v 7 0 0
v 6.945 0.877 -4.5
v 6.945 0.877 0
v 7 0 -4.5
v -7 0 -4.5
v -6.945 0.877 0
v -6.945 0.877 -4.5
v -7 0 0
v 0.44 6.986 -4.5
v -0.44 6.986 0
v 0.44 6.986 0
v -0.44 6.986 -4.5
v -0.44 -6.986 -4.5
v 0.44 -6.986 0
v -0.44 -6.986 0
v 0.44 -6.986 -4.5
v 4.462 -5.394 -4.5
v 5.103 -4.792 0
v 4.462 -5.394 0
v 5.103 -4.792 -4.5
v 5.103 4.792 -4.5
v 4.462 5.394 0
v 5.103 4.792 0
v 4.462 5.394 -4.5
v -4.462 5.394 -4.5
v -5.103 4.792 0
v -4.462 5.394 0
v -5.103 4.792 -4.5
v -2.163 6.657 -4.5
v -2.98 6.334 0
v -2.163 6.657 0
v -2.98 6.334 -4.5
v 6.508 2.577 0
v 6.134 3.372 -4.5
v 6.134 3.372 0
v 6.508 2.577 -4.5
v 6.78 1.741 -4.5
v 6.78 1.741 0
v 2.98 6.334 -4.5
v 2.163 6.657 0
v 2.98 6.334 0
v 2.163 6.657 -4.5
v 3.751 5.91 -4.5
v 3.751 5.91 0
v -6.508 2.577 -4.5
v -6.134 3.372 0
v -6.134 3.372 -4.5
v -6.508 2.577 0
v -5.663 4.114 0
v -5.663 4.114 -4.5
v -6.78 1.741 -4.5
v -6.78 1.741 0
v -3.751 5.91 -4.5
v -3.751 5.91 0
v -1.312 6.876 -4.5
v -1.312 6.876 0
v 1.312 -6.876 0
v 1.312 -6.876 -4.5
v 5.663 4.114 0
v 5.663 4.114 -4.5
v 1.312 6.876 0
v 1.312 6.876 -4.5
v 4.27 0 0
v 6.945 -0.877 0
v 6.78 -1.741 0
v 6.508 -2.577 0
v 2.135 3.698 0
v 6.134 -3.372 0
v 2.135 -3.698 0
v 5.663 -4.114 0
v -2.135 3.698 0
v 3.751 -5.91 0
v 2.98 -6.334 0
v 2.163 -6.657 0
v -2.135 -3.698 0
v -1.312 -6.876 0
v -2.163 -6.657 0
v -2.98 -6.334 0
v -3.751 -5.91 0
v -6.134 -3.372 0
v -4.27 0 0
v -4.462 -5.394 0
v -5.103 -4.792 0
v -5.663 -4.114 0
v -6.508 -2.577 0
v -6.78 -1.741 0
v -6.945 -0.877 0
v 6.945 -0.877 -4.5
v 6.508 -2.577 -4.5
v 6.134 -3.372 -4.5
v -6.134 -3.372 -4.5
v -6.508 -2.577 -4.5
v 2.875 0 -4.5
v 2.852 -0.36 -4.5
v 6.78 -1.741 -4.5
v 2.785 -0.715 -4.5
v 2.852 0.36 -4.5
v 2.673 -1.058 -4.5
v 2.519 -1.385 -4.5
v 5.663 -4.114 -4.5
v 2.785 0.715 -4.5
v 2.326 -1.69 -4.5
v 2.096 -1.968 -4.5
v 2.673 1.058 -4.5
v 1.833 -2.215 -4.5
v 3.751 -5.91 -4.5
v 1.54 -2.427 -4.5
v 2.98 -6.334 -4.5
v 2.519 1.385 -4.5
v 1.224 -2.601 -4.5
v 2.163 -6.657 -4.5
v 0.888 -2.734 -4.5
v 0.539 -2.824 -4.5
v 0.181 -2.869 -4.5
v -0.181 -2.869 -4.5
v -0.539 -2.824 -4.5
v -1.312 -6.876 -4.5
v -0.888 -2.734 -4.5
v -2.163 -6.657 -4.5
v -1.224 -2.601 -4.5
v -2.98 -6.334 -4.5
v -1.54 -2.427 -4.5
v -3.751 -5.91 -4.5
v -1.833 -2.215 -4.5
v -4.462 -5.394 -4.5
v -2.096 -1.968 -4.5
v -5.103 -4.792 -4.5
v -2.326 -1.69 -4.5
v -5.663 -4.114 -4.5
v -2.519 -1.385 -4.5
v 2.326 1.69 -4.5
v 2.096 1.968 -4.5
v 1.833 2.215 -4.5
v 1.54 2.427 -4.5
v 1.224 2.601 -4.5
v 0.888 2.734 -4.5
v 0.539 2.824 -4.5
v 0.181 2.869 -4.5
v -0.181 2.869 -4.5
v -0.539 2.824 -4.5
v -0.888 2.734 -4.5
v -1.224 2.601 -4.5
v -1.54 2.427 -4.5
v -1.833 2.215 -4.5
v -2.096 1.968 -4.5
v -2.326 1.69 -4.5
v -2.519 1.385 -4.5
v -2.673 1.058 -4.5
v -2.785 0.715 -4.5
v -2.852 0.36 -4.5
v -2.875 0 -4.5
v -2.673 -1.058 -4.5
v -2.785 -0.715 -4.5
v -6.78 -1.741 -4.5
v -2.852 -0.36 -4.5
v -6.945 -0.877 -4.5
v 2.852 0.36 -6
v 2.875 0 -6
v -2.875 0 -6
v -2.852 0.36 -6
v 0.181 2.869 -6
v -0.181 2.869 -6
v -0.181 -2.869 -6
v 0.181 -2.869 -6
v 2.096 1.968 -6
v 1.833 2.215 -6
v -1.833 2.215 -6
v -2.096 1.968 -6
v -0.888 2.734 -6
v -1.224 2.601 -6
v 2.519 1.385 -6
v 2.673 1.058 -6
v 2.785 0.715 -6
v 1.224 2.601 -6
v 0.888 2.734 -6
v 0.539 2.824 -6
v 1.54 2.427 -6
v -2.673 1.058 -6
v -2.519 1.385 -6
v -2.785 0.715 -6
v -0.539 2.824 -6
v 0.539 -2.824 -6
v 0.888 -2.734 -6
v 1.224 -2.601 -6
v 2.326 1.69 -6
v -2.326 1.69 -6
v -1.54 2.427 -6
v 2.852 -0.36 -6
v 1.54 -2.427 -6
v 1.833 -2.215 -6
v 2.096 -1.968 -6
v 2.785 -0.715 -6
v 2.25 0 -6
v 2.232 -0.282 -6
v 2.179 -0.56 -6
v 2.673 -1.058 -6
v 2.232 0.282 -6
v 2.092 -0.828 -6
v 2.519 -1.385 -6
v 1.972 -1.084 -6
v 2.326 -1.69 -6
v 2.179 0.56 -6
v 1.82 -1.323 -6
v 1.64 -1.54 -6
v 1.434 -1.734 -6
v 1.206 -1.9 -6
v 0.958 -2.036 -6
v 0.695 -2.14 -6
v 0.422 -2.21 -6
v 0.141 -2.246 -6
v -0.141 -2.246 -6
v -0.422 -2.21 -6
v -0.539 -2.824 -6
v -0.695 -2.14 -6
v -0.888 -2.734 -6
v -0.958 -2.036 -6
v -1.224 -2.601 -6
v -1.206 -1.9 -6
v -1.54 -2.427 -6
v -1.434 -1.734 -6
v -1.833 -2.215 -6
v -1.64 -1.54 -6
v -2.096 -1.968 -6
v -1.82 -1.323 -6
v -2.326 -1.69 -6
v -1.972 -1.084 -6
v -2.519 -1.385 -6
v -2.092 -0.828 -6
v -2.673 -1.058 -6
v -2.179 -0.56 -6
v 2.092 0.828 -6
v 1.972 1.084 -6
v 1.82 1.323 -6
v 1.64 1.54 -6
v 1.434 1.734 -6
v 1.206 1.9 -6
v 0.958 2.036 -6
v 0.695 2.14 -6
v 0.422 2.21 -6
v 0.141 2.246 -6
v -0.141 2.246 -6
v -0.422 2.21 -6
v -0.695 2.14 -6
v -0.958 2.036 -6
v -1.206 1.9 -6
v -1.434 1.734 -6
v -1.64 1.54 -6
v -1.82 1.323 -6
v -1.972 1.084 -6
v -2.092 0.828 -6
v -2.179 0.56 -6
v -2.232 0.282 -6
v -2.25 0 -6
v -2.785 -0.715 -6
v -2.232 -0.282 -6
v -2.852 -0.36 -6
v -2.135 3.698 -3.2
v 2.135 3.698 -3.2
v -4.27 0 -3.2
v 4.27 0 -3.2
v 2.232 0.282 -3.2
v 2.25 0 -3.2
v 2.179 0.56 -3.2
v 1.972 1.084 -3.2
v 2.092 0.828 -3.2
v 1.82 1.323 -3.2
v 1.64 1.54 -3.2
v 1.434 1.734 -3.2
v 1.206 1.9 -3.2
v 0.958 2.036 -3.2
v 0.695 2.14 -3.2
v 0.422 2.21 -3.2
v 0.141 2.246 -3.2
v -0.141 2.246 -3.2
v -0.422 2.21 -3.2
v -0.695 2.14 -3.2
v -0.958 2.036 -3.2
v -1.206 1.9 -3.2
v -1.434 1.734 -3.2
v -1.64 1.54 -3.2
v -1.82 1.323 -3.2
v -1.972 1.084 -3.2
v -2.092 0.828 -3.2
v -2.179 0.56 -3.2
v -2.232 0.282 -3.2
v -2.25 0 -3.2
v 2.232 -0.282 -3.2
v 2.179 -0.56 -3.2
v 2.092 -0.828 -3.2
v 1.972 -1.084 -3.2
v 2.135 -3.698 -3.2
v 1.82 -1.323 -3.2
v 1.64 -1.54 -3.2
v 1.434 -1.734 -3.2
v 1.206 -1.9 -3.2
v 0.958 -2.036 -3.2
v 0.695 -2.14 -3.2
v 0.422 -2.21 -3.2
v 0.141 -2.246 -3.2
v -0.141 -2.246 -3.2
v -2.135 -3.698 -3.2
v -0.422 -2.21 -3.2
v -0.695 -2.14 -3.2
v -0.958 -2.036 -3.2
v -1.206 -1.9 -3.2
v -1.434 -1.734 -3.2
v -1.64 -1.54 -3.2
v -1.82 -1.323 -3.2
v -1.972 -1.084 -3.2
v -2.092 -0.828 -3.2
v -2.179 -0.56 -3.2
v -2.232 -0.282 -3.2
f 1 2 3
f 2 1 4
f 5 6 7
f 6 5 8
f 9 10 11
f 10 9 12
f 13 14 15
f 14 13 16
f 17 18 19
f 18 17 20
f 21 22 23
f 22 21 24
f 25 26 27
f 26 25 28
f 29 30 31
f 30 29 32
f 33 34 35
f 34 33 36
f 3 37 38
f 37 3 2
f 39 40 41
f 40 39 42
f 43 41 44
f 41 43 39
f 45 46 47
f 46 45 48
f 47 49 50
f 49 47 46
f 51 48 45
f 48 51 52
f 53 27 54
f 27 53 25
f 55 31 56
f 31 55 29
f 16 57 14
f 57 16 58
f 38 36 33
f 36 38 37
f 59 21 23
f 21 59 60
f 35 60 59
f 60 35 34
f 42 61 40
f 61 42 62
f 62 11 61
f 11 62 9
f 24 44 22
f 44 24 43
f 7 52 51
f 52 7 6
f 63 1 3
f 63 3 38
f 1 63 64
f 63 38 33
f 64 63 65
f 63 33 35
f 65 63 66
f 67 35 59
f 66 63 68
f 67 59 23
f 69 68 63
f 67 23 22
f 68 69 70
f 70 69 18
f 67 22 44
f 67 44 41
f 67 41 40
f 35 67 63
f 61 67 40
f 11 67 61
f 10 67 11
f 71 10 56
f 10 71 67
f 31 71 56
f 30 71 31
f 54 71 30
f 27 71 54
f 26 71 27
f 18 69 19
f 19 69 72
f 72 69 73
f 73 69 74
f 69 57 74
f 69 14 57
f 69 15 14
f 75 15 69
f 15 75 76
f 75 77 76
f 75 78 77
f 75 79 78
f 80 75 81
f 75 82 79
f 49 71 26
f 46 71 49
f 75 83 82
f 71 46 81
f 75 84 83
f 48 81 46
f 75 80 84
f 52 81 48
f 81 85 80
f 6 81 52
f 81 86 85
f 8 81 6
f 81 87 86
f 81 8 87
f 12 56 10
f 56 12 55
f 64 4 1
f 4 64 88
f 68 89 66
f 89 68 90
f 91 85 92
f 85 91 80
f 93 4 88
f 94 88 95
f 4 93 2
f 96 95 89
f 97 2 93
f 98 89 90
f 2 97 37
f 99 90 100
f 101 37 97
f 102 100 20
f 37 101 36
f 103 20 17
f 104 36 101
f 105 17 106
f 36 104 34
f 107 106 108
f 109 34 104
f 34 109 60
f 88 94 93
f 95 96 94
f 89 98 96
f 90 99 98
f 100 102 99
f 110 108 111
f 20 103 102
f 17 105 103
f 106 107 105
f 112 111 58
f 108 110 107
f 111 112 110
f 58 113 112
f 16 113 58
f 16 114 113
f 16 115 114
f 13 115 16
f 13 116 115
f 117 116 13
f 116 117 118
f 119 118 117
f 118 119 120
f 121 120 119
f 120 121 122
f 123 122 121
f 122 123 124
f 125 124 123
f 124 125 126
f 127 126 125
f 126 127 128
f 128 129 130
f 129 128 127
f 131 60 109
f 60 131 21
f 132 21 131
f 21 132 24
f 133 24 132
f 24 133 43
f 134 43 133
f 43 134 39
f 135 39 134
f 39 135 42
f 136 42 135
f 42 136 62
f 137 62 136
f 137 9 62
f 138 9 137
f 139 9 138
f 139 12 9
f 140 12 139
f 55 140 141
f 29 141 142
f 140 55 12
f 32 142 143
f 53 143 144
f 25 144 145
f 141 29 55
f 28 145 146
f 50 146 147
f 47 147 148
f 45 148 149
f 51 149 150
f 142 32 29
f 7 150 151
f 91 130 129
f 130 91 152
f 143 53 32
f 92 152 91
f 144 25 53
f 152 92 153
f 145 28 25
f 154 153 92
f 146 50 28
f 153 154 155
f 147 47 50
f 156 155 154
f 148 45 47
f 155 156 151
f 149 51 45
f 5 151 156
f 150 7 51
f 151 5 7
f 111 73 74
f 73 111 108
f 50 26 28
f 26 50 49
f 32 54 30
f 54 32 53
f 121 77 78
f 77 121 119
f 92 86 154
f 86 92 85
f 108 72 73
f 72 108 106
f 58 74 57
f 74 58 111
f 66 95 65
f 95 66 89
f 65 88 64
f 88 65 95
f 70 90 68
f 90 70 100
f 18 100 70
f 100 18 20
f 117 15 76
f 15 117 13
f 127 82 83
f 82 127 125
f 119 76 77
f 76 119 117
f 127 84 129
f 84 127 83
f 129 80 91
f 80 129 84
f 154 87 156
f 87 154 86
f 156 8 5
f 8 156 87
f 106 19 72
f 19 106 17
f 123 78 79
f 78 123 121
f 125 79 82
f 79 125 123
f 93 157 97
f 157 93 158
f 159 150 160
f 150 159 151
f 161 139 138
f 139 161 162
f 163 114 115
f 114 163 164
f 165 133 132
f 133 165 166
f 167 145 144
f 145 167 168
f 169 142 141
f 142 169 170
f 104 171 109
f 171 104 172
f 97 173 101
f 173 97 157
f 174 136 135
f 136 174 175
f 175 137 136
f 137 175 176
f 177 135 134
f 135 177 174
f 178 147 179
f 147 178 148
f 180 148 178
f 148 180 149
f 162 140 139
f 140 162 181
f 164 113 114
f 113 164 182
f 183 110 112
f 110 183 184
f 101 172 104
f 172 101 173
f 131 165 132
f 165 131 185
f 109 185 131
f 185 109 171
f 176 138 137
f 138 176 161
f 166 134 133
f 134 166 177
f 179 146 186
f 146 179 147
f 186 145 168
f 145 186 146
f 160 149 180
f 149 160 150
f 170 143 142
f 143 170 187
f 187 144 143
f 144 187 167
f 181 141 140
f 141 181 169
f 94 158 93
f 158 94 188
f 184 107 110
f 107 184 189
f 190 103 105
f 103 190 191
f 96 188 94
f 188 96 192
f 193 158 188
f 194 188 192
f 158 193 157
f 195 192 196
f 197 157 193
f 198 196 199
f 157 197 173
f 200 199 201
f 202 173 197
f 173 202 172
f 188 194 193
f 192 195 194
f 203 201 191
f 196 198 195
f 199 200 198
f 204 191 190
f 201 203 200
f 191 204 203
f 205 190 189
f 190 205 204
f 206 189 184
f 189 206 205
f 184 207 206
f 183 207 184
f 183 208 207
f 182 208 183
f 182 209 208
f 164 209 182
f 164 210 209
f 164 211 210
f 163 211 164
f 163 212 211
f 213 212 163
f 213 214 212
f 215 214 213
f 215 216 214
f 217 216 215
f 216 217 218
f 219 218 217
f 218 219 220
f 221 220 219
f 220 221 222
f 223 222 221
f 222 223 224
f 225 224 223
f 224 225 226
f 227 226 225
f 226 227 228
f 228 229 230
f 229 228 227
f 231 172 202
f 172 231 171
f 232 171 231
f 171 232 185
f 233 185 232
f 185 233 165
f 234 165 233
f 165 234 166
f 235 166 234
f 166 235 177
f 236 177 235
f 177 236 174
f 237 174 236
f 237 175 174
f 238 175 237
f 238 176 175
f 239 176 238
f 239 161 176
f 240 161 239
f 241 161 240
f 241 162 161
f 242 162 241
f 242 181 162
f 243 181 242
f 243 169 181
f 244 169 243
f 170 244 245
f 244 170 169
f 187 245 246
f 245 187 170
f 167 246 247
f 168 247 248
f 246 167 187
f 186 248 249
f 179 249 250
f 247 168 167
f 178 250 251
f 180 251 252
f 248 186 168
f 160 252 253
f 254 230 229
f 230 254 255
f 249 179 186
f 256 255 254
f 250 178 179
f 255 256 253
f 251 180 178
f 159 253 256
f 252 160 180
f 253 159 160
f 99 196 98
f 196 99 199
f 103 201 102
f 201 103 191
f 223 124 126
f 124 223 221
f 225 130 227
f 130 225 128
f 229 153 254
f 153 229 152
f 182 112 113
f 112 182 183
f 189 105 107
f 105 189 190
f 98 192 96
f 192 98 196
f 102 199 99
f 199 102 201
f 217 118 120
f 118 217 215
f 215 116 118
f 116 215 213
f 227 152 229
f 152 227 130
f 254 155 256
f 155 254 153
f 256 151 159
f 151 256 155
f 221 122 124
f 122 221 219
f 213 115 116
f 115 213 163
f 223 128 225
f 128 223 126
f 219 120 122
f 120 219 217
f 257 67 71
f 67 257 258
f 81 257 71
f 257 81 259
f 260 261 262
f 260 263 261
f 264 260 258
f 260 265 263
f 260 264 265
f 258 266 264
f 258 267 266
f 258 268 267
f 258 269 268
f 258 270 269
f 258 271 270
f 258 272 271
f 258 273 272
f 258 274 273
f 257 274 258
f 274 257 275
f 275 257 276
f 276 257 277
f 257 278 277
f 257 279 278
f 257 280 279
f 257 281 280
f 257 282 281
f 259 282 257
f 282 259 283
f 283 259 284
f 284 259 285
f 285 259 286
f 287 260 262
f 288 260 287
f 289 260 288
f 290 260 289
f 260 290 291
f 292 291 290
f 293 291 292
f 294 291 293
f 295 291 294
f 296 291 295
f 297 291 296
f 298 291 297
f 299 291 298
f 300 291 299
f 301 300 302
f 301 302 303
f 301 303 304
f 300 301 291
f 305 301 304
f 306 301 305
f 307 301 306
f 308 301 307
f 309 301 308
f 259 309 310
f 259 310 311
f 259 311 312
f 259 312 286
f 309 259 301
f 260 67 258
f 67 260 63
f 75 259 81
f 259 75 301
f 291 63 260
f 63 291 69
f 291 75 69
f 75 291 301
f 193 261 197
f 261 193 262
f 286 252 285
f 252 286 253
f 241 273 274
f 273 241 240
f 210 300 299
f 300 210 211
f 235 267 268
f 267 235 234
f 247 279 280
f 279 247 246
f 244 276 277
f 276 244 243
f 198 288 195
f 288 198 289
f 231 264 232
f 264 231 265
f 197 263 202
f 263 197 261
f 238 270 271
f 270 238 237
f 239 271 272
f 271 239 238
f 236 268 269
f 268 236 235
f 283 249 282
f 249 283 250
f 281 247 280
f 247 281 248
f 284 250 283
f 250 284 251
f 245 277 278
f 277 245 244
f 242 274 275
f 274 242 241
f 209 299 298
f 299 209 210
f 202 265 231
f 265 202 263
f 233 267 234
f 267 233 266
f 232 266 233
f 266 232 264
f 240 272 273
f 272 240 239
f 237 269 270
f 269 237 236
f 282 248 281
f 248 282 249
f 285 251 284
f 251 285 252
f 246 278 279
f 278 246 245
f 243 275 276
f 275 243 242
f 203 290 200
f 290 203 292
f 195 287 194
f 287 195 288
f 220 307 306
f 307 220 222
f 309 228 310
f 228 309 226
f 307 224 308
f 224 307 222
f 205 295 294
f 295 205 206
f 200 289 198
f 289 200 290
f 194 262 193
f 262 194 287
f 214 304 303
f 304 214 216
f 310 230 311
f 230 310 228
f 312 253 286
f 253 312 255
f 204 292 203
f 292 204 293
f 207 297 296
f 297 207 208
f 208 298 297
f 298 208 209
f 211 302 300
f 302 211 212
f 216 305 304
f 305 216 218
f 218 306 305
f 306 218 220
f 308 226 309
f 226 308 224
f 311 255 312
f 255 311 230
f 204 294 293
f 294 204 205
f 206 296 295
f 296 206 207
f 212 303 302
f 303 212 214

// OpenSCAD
$fn = 50;


difference() {
	union() {
		translate(v = [0, 0, -4.5000000000]) {
			cylinder(h = 4.5000000000, r = 7.0000000000);
		}
		translate(v = [0, 0, -6.0000000000]) {
			cylinder(h = 6, r = 2.8750000000);
		}
	}
	union() {
		translate(v = [0, 0, 0]) {
			rotate(a = [0, 0, 0]) {
				difference() {
					union() {
						translate(v = [0, 0, -3.2000000000]) {
							linear_extrude(height = 3.2000000000) {
								polygon(points = [[4.2698000000, 0.0000000000], [2.1349000000, 3.6977552691], [-2.1349000000, 3.6977552691], [-4.2698000000, 0.0000000000], [-2.1349000000, -3.6977552691], [2.1349000000, -3.6977552691]]);
							}
						}
					}
					union();
				}
			}
		}
		#translate(v = [0, 0, -100.0000000000]) {
			cylinder(h = 200, r = 2.2500000000);
		}
	}
}
